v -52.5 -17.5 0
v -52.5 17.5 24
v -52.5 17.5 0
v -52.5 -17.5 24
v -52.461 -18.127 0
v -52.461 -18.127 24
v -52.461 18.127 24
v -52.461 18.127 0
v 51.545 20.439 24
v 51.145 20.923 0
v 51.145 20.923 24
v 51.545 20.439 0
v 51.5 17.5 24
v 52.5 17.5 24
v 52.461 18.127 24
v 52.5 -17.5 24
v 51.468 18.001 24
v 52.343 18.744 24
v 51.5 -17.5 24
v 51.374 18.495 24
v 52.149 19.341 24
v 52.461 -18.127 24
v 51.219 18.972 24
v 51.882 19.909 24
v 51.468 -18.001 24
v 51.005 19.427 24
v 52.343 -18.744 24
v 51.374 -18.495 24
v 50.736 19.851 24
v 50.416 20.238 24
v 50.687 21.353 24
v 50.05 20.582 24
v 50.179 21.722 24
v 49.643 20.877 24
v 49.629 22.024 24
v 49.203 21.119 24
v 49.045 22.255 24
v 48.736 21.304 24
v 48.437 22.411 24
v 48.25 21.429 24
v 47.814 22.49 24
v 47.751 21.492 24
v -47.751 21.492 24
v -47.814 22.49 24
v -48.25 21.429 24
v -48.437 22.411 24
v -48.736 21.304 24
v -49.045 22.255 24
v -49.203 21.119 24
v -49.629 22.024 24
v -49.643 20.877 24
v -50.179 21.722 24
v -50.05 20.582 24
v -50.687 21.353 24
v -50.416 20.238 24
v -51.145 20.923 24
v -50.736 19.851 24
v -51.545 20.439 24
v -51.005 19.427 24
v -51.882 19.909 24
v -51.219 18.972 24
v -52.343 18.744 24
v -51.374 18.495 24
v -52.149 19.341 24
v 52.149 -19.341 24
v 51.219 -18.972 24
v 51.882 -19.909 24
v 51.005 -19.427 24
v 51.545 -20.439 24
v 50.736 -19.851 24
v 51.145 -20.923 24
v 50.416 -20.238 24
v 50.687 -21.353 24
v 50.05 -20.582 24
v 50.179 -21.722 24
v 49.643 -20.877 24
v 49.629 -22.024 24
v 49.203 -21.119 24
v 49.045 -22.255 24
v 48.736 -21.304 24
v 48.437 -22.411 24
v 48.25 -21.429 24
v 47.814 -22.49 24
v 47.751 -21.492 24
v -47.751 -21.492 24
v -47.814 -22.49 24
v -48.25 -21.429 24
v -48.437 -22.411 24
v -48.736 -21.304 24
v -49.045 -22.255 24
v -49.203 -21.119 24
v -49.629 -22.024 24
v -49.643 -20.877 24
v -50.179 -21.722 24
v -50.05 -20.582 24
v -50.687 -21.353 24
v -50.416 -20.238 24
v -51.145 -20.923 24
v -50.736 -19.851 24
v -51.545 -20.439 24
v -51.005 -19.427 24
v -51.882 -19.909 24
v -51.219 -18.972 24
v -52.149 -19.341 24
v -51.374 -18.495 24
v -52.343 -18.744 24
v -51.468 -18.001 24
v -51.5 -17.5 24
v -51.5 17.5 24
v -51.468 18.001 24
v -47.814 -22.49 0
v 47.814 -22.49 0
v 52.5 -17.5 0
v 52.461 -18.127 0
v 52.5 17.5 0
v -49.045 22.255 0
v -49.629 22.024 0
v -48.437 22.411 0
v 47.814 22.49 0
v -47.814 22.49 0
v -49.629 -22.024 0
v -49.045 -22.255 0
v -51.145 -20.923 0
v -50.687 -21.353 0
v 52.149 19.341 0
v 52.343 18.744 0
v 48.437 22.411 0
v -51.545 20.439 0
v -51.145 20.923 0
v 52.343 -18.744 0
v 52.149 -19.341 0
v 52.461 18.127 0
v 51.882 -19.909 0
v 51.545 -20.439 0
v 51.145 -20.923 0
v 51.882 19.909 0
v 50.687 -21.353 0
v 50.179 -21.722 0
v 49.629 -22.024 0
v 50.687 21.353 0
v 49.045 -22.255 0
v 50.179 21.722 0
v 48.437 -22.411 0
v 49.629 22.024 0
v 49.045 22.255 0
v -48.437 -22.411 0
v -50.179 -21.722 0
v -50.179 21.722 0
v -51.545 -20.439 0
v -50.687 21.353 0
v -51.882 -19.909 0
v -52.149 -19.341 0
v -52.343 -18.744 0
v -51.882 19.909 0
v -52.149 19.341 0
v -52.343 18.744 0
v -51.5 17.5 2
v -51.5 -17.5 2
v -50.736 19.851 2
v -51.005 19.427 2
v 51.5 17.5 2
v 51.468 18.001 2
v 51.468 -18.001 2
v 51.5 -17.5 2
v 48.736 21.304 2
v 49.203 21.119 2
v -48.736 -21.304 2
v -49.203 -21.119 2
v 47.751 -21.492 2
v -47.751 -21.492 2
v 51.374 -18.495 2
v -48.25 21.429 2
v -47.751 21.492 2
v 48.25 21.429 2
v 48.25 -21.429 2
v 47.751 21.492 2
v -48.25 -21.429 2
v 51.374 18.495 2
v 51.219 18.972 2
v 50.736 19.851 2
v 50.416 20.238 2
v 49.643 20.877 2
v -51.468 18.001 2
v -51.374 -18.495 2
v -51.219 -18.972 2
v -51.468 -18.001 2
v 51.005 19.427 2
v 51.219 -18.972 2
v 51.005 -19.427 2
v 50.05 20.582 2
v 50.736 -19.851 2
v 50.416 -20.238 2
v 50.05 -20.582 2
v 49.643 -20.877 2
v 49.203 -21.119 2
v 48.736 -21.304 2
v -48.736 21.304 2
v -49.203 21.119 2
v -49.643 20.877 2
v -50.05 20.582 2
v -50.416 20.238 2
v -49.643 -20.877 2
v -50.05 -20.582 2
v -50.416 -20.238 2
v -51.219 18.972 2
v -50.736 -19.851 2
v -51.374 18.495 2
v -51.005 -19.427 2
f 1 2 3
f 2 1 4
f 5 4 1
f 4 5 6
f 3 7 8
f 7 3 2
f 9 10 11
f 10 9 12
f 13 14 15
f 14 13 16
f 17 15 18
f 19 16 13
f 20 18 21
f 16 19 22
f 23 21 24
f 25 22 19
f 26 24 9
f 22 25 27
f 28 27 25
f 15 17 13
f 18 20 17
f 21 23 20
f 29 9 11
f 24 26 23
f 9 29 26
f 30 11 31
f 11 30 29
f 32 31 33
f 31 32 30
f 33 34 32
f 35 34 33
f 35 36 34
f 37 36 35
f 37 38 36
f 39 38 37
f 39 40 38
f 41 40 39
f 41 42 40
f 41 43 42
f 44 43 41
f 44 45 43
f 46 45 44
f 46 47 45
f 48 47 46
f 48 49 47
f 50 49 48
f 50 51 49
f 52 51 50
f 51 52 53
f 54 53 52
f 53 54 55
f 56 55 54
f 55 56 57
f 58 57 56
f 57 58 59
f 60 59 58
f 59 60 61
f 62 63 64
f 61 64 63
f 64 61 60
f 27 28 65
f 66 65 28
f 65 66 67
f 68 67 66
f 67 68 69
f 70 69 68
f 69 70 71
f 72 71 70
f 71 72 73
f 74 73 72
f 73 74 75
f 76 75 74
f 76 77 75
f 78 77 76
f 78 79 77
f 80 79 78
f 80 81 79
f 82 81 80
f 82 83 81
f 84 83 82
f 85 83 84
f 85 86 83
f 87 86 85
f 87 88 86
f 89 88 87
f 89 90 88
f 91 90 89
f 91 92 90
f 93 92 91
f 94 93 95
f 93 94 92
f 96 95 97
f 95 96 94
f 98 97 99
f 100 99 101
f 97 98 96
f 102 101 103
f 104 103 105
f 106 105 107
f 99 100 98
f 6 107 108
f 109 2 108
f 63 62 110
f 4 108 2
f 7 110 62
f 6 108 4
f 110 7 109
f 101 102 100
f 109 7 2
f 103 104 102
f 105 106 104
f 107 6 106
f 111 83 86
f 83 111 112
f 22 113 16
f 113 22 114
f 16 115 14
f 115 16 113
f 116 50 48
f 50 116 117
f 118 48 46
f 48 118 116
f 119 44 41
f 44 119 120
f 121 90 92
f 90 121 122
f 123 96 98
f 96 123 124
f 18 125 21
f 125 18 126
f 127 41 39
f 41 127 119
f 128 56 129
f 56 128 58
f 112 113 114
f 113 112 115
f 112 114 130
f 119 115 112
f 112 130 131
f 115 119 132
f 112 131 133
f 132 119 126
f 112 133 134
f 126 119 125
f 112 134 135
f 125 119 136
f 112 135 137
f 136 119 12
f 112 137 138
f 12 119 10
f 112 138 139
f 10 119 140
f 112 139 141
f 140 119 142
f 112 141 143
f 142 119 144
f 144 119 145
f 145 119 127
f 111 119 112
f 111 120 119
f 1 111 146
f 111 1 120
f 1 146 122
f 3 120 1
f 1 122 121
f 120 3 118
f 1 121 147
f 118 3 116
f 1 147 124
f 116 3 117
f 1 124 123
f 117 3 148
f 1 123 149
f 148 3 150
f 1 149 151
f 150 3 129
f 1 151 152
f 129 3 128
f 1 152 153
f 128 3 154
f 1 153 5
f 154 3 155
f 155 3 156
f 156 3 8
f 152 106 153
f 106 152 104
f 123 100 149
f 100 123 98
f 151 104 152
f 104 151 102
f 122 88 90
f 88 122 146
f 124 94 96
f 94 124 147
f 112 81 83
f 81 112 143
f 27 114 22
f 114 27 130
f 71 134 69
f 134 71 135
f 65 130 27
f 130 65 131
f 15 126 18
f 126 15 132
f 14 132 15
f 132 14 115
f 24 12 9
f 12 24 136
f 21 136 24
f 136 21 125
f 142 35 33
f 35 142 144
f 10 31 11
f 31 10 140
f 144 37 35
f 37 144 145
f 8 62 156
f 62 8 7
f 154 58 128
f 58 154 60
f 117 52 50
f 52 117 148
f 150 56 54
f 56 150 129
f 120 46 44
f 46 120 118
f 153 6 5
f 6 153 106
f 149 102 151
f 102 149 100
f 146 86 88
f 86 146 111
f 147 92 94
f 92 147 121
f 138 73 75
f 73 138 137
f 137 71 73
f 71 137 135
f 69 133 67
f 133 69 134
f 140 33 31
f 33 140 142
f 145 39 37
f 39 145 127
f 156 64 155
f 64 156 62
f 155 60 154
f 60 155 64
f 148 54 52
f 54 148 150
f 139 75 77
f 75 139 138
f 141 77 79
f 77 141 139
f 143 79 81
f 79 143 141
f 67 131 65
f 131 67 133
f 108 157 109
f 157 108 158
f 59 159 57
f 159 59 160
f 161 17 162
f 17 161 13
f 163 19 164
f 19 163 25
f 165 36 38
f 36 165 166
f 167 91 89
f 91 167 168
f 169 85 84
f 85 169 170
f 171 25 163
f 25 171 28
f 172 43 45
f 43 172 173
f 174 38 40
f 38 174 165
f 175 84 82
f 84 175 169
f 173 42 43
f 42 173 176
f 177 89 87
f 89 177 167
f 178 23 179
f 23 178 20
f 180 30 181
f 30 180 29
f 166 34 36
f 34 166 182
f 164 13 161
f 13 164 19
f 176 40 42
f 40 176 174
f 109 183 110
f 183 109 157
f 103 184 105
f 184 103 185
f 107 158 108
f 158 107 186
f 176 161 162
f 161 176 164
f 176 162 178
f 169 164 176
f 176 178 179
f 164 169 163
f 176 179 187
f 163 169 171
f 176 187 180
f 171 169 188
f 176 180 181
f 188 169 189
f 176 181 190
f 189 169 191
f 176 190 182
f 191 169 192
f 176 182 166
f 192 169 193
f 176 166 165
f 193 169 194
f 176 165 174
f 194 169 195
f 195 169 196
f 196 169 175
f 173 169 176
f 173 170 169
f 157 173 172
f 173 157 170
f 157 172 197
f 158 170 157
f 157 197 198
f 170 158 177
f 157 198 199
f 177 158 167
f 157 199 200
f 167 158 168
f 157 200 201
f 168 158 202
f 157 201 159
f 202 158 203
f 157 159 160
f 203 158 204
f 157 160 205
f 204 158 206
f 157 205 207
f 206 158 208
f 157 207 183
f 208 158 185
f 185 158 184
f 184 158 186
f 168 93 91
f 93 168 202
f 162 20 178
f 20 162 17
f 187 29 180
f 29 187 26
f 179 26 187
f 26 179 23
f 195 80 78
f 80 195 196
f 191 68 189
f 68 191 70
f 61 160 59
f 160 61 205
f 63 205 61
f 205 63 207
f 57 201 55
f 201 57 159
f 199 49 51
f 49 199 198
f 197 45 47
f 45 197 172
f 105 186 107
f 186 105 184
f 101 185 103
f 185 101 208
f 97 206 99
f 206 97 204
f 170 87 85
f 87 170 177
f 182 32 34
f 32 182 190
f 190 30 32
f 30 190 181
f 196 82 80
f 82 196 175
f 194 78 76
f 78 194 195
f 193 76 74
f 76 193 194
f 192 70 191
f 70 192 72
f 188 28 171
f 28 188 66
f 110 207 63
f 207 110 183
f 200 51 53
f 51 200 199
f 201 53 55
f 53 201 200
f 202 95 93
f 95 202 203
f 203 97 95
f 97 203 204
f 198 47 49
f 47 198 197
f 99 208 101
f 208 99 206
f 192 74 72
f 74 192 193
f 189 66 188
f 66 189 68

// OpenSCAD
$fn = 50;


difference() {
	union() {
		hull() {
			translate(v = [-47.5000000000, 17.5000000000, 0]) {
				cylinder(h = 24, r = 5);
			}
			translate(v = [47.5000000000, 17.5000000000, 0]) {
				cylinder(h = 24, r = 5);
			}
			translate(v = [-47.5000000000, -17.5000000000, 0]) {
				cylinder(h = 24, r = 5);
			}
			translate(v = [47.5000000000, -17.5000000000, 0]) {
				cylinder(h = 24, r = 5);
			}
		}
	}
	union() {
		translate(v = [0, 0, 2]) {
			hull() {
				translate(v = [-47.5000000000, 17.5000000000, 0]) {
					cylinder(h = 22, r = 4);
				}
				translate(v = [47.5000000000, 17.5000000000, 0]) {
					cylinder(h = 22, r = 4);
				}
				translate(v = [-47.5000000000, -17.5000000000, 0]) {
					cylinder(h = 22, r = 4);
				}
				translate(v = [47.5000000000, -17.5000000000, 0]) {
					cylinder(h = 22, r = 4);
				}
			}
		}
	}
}
